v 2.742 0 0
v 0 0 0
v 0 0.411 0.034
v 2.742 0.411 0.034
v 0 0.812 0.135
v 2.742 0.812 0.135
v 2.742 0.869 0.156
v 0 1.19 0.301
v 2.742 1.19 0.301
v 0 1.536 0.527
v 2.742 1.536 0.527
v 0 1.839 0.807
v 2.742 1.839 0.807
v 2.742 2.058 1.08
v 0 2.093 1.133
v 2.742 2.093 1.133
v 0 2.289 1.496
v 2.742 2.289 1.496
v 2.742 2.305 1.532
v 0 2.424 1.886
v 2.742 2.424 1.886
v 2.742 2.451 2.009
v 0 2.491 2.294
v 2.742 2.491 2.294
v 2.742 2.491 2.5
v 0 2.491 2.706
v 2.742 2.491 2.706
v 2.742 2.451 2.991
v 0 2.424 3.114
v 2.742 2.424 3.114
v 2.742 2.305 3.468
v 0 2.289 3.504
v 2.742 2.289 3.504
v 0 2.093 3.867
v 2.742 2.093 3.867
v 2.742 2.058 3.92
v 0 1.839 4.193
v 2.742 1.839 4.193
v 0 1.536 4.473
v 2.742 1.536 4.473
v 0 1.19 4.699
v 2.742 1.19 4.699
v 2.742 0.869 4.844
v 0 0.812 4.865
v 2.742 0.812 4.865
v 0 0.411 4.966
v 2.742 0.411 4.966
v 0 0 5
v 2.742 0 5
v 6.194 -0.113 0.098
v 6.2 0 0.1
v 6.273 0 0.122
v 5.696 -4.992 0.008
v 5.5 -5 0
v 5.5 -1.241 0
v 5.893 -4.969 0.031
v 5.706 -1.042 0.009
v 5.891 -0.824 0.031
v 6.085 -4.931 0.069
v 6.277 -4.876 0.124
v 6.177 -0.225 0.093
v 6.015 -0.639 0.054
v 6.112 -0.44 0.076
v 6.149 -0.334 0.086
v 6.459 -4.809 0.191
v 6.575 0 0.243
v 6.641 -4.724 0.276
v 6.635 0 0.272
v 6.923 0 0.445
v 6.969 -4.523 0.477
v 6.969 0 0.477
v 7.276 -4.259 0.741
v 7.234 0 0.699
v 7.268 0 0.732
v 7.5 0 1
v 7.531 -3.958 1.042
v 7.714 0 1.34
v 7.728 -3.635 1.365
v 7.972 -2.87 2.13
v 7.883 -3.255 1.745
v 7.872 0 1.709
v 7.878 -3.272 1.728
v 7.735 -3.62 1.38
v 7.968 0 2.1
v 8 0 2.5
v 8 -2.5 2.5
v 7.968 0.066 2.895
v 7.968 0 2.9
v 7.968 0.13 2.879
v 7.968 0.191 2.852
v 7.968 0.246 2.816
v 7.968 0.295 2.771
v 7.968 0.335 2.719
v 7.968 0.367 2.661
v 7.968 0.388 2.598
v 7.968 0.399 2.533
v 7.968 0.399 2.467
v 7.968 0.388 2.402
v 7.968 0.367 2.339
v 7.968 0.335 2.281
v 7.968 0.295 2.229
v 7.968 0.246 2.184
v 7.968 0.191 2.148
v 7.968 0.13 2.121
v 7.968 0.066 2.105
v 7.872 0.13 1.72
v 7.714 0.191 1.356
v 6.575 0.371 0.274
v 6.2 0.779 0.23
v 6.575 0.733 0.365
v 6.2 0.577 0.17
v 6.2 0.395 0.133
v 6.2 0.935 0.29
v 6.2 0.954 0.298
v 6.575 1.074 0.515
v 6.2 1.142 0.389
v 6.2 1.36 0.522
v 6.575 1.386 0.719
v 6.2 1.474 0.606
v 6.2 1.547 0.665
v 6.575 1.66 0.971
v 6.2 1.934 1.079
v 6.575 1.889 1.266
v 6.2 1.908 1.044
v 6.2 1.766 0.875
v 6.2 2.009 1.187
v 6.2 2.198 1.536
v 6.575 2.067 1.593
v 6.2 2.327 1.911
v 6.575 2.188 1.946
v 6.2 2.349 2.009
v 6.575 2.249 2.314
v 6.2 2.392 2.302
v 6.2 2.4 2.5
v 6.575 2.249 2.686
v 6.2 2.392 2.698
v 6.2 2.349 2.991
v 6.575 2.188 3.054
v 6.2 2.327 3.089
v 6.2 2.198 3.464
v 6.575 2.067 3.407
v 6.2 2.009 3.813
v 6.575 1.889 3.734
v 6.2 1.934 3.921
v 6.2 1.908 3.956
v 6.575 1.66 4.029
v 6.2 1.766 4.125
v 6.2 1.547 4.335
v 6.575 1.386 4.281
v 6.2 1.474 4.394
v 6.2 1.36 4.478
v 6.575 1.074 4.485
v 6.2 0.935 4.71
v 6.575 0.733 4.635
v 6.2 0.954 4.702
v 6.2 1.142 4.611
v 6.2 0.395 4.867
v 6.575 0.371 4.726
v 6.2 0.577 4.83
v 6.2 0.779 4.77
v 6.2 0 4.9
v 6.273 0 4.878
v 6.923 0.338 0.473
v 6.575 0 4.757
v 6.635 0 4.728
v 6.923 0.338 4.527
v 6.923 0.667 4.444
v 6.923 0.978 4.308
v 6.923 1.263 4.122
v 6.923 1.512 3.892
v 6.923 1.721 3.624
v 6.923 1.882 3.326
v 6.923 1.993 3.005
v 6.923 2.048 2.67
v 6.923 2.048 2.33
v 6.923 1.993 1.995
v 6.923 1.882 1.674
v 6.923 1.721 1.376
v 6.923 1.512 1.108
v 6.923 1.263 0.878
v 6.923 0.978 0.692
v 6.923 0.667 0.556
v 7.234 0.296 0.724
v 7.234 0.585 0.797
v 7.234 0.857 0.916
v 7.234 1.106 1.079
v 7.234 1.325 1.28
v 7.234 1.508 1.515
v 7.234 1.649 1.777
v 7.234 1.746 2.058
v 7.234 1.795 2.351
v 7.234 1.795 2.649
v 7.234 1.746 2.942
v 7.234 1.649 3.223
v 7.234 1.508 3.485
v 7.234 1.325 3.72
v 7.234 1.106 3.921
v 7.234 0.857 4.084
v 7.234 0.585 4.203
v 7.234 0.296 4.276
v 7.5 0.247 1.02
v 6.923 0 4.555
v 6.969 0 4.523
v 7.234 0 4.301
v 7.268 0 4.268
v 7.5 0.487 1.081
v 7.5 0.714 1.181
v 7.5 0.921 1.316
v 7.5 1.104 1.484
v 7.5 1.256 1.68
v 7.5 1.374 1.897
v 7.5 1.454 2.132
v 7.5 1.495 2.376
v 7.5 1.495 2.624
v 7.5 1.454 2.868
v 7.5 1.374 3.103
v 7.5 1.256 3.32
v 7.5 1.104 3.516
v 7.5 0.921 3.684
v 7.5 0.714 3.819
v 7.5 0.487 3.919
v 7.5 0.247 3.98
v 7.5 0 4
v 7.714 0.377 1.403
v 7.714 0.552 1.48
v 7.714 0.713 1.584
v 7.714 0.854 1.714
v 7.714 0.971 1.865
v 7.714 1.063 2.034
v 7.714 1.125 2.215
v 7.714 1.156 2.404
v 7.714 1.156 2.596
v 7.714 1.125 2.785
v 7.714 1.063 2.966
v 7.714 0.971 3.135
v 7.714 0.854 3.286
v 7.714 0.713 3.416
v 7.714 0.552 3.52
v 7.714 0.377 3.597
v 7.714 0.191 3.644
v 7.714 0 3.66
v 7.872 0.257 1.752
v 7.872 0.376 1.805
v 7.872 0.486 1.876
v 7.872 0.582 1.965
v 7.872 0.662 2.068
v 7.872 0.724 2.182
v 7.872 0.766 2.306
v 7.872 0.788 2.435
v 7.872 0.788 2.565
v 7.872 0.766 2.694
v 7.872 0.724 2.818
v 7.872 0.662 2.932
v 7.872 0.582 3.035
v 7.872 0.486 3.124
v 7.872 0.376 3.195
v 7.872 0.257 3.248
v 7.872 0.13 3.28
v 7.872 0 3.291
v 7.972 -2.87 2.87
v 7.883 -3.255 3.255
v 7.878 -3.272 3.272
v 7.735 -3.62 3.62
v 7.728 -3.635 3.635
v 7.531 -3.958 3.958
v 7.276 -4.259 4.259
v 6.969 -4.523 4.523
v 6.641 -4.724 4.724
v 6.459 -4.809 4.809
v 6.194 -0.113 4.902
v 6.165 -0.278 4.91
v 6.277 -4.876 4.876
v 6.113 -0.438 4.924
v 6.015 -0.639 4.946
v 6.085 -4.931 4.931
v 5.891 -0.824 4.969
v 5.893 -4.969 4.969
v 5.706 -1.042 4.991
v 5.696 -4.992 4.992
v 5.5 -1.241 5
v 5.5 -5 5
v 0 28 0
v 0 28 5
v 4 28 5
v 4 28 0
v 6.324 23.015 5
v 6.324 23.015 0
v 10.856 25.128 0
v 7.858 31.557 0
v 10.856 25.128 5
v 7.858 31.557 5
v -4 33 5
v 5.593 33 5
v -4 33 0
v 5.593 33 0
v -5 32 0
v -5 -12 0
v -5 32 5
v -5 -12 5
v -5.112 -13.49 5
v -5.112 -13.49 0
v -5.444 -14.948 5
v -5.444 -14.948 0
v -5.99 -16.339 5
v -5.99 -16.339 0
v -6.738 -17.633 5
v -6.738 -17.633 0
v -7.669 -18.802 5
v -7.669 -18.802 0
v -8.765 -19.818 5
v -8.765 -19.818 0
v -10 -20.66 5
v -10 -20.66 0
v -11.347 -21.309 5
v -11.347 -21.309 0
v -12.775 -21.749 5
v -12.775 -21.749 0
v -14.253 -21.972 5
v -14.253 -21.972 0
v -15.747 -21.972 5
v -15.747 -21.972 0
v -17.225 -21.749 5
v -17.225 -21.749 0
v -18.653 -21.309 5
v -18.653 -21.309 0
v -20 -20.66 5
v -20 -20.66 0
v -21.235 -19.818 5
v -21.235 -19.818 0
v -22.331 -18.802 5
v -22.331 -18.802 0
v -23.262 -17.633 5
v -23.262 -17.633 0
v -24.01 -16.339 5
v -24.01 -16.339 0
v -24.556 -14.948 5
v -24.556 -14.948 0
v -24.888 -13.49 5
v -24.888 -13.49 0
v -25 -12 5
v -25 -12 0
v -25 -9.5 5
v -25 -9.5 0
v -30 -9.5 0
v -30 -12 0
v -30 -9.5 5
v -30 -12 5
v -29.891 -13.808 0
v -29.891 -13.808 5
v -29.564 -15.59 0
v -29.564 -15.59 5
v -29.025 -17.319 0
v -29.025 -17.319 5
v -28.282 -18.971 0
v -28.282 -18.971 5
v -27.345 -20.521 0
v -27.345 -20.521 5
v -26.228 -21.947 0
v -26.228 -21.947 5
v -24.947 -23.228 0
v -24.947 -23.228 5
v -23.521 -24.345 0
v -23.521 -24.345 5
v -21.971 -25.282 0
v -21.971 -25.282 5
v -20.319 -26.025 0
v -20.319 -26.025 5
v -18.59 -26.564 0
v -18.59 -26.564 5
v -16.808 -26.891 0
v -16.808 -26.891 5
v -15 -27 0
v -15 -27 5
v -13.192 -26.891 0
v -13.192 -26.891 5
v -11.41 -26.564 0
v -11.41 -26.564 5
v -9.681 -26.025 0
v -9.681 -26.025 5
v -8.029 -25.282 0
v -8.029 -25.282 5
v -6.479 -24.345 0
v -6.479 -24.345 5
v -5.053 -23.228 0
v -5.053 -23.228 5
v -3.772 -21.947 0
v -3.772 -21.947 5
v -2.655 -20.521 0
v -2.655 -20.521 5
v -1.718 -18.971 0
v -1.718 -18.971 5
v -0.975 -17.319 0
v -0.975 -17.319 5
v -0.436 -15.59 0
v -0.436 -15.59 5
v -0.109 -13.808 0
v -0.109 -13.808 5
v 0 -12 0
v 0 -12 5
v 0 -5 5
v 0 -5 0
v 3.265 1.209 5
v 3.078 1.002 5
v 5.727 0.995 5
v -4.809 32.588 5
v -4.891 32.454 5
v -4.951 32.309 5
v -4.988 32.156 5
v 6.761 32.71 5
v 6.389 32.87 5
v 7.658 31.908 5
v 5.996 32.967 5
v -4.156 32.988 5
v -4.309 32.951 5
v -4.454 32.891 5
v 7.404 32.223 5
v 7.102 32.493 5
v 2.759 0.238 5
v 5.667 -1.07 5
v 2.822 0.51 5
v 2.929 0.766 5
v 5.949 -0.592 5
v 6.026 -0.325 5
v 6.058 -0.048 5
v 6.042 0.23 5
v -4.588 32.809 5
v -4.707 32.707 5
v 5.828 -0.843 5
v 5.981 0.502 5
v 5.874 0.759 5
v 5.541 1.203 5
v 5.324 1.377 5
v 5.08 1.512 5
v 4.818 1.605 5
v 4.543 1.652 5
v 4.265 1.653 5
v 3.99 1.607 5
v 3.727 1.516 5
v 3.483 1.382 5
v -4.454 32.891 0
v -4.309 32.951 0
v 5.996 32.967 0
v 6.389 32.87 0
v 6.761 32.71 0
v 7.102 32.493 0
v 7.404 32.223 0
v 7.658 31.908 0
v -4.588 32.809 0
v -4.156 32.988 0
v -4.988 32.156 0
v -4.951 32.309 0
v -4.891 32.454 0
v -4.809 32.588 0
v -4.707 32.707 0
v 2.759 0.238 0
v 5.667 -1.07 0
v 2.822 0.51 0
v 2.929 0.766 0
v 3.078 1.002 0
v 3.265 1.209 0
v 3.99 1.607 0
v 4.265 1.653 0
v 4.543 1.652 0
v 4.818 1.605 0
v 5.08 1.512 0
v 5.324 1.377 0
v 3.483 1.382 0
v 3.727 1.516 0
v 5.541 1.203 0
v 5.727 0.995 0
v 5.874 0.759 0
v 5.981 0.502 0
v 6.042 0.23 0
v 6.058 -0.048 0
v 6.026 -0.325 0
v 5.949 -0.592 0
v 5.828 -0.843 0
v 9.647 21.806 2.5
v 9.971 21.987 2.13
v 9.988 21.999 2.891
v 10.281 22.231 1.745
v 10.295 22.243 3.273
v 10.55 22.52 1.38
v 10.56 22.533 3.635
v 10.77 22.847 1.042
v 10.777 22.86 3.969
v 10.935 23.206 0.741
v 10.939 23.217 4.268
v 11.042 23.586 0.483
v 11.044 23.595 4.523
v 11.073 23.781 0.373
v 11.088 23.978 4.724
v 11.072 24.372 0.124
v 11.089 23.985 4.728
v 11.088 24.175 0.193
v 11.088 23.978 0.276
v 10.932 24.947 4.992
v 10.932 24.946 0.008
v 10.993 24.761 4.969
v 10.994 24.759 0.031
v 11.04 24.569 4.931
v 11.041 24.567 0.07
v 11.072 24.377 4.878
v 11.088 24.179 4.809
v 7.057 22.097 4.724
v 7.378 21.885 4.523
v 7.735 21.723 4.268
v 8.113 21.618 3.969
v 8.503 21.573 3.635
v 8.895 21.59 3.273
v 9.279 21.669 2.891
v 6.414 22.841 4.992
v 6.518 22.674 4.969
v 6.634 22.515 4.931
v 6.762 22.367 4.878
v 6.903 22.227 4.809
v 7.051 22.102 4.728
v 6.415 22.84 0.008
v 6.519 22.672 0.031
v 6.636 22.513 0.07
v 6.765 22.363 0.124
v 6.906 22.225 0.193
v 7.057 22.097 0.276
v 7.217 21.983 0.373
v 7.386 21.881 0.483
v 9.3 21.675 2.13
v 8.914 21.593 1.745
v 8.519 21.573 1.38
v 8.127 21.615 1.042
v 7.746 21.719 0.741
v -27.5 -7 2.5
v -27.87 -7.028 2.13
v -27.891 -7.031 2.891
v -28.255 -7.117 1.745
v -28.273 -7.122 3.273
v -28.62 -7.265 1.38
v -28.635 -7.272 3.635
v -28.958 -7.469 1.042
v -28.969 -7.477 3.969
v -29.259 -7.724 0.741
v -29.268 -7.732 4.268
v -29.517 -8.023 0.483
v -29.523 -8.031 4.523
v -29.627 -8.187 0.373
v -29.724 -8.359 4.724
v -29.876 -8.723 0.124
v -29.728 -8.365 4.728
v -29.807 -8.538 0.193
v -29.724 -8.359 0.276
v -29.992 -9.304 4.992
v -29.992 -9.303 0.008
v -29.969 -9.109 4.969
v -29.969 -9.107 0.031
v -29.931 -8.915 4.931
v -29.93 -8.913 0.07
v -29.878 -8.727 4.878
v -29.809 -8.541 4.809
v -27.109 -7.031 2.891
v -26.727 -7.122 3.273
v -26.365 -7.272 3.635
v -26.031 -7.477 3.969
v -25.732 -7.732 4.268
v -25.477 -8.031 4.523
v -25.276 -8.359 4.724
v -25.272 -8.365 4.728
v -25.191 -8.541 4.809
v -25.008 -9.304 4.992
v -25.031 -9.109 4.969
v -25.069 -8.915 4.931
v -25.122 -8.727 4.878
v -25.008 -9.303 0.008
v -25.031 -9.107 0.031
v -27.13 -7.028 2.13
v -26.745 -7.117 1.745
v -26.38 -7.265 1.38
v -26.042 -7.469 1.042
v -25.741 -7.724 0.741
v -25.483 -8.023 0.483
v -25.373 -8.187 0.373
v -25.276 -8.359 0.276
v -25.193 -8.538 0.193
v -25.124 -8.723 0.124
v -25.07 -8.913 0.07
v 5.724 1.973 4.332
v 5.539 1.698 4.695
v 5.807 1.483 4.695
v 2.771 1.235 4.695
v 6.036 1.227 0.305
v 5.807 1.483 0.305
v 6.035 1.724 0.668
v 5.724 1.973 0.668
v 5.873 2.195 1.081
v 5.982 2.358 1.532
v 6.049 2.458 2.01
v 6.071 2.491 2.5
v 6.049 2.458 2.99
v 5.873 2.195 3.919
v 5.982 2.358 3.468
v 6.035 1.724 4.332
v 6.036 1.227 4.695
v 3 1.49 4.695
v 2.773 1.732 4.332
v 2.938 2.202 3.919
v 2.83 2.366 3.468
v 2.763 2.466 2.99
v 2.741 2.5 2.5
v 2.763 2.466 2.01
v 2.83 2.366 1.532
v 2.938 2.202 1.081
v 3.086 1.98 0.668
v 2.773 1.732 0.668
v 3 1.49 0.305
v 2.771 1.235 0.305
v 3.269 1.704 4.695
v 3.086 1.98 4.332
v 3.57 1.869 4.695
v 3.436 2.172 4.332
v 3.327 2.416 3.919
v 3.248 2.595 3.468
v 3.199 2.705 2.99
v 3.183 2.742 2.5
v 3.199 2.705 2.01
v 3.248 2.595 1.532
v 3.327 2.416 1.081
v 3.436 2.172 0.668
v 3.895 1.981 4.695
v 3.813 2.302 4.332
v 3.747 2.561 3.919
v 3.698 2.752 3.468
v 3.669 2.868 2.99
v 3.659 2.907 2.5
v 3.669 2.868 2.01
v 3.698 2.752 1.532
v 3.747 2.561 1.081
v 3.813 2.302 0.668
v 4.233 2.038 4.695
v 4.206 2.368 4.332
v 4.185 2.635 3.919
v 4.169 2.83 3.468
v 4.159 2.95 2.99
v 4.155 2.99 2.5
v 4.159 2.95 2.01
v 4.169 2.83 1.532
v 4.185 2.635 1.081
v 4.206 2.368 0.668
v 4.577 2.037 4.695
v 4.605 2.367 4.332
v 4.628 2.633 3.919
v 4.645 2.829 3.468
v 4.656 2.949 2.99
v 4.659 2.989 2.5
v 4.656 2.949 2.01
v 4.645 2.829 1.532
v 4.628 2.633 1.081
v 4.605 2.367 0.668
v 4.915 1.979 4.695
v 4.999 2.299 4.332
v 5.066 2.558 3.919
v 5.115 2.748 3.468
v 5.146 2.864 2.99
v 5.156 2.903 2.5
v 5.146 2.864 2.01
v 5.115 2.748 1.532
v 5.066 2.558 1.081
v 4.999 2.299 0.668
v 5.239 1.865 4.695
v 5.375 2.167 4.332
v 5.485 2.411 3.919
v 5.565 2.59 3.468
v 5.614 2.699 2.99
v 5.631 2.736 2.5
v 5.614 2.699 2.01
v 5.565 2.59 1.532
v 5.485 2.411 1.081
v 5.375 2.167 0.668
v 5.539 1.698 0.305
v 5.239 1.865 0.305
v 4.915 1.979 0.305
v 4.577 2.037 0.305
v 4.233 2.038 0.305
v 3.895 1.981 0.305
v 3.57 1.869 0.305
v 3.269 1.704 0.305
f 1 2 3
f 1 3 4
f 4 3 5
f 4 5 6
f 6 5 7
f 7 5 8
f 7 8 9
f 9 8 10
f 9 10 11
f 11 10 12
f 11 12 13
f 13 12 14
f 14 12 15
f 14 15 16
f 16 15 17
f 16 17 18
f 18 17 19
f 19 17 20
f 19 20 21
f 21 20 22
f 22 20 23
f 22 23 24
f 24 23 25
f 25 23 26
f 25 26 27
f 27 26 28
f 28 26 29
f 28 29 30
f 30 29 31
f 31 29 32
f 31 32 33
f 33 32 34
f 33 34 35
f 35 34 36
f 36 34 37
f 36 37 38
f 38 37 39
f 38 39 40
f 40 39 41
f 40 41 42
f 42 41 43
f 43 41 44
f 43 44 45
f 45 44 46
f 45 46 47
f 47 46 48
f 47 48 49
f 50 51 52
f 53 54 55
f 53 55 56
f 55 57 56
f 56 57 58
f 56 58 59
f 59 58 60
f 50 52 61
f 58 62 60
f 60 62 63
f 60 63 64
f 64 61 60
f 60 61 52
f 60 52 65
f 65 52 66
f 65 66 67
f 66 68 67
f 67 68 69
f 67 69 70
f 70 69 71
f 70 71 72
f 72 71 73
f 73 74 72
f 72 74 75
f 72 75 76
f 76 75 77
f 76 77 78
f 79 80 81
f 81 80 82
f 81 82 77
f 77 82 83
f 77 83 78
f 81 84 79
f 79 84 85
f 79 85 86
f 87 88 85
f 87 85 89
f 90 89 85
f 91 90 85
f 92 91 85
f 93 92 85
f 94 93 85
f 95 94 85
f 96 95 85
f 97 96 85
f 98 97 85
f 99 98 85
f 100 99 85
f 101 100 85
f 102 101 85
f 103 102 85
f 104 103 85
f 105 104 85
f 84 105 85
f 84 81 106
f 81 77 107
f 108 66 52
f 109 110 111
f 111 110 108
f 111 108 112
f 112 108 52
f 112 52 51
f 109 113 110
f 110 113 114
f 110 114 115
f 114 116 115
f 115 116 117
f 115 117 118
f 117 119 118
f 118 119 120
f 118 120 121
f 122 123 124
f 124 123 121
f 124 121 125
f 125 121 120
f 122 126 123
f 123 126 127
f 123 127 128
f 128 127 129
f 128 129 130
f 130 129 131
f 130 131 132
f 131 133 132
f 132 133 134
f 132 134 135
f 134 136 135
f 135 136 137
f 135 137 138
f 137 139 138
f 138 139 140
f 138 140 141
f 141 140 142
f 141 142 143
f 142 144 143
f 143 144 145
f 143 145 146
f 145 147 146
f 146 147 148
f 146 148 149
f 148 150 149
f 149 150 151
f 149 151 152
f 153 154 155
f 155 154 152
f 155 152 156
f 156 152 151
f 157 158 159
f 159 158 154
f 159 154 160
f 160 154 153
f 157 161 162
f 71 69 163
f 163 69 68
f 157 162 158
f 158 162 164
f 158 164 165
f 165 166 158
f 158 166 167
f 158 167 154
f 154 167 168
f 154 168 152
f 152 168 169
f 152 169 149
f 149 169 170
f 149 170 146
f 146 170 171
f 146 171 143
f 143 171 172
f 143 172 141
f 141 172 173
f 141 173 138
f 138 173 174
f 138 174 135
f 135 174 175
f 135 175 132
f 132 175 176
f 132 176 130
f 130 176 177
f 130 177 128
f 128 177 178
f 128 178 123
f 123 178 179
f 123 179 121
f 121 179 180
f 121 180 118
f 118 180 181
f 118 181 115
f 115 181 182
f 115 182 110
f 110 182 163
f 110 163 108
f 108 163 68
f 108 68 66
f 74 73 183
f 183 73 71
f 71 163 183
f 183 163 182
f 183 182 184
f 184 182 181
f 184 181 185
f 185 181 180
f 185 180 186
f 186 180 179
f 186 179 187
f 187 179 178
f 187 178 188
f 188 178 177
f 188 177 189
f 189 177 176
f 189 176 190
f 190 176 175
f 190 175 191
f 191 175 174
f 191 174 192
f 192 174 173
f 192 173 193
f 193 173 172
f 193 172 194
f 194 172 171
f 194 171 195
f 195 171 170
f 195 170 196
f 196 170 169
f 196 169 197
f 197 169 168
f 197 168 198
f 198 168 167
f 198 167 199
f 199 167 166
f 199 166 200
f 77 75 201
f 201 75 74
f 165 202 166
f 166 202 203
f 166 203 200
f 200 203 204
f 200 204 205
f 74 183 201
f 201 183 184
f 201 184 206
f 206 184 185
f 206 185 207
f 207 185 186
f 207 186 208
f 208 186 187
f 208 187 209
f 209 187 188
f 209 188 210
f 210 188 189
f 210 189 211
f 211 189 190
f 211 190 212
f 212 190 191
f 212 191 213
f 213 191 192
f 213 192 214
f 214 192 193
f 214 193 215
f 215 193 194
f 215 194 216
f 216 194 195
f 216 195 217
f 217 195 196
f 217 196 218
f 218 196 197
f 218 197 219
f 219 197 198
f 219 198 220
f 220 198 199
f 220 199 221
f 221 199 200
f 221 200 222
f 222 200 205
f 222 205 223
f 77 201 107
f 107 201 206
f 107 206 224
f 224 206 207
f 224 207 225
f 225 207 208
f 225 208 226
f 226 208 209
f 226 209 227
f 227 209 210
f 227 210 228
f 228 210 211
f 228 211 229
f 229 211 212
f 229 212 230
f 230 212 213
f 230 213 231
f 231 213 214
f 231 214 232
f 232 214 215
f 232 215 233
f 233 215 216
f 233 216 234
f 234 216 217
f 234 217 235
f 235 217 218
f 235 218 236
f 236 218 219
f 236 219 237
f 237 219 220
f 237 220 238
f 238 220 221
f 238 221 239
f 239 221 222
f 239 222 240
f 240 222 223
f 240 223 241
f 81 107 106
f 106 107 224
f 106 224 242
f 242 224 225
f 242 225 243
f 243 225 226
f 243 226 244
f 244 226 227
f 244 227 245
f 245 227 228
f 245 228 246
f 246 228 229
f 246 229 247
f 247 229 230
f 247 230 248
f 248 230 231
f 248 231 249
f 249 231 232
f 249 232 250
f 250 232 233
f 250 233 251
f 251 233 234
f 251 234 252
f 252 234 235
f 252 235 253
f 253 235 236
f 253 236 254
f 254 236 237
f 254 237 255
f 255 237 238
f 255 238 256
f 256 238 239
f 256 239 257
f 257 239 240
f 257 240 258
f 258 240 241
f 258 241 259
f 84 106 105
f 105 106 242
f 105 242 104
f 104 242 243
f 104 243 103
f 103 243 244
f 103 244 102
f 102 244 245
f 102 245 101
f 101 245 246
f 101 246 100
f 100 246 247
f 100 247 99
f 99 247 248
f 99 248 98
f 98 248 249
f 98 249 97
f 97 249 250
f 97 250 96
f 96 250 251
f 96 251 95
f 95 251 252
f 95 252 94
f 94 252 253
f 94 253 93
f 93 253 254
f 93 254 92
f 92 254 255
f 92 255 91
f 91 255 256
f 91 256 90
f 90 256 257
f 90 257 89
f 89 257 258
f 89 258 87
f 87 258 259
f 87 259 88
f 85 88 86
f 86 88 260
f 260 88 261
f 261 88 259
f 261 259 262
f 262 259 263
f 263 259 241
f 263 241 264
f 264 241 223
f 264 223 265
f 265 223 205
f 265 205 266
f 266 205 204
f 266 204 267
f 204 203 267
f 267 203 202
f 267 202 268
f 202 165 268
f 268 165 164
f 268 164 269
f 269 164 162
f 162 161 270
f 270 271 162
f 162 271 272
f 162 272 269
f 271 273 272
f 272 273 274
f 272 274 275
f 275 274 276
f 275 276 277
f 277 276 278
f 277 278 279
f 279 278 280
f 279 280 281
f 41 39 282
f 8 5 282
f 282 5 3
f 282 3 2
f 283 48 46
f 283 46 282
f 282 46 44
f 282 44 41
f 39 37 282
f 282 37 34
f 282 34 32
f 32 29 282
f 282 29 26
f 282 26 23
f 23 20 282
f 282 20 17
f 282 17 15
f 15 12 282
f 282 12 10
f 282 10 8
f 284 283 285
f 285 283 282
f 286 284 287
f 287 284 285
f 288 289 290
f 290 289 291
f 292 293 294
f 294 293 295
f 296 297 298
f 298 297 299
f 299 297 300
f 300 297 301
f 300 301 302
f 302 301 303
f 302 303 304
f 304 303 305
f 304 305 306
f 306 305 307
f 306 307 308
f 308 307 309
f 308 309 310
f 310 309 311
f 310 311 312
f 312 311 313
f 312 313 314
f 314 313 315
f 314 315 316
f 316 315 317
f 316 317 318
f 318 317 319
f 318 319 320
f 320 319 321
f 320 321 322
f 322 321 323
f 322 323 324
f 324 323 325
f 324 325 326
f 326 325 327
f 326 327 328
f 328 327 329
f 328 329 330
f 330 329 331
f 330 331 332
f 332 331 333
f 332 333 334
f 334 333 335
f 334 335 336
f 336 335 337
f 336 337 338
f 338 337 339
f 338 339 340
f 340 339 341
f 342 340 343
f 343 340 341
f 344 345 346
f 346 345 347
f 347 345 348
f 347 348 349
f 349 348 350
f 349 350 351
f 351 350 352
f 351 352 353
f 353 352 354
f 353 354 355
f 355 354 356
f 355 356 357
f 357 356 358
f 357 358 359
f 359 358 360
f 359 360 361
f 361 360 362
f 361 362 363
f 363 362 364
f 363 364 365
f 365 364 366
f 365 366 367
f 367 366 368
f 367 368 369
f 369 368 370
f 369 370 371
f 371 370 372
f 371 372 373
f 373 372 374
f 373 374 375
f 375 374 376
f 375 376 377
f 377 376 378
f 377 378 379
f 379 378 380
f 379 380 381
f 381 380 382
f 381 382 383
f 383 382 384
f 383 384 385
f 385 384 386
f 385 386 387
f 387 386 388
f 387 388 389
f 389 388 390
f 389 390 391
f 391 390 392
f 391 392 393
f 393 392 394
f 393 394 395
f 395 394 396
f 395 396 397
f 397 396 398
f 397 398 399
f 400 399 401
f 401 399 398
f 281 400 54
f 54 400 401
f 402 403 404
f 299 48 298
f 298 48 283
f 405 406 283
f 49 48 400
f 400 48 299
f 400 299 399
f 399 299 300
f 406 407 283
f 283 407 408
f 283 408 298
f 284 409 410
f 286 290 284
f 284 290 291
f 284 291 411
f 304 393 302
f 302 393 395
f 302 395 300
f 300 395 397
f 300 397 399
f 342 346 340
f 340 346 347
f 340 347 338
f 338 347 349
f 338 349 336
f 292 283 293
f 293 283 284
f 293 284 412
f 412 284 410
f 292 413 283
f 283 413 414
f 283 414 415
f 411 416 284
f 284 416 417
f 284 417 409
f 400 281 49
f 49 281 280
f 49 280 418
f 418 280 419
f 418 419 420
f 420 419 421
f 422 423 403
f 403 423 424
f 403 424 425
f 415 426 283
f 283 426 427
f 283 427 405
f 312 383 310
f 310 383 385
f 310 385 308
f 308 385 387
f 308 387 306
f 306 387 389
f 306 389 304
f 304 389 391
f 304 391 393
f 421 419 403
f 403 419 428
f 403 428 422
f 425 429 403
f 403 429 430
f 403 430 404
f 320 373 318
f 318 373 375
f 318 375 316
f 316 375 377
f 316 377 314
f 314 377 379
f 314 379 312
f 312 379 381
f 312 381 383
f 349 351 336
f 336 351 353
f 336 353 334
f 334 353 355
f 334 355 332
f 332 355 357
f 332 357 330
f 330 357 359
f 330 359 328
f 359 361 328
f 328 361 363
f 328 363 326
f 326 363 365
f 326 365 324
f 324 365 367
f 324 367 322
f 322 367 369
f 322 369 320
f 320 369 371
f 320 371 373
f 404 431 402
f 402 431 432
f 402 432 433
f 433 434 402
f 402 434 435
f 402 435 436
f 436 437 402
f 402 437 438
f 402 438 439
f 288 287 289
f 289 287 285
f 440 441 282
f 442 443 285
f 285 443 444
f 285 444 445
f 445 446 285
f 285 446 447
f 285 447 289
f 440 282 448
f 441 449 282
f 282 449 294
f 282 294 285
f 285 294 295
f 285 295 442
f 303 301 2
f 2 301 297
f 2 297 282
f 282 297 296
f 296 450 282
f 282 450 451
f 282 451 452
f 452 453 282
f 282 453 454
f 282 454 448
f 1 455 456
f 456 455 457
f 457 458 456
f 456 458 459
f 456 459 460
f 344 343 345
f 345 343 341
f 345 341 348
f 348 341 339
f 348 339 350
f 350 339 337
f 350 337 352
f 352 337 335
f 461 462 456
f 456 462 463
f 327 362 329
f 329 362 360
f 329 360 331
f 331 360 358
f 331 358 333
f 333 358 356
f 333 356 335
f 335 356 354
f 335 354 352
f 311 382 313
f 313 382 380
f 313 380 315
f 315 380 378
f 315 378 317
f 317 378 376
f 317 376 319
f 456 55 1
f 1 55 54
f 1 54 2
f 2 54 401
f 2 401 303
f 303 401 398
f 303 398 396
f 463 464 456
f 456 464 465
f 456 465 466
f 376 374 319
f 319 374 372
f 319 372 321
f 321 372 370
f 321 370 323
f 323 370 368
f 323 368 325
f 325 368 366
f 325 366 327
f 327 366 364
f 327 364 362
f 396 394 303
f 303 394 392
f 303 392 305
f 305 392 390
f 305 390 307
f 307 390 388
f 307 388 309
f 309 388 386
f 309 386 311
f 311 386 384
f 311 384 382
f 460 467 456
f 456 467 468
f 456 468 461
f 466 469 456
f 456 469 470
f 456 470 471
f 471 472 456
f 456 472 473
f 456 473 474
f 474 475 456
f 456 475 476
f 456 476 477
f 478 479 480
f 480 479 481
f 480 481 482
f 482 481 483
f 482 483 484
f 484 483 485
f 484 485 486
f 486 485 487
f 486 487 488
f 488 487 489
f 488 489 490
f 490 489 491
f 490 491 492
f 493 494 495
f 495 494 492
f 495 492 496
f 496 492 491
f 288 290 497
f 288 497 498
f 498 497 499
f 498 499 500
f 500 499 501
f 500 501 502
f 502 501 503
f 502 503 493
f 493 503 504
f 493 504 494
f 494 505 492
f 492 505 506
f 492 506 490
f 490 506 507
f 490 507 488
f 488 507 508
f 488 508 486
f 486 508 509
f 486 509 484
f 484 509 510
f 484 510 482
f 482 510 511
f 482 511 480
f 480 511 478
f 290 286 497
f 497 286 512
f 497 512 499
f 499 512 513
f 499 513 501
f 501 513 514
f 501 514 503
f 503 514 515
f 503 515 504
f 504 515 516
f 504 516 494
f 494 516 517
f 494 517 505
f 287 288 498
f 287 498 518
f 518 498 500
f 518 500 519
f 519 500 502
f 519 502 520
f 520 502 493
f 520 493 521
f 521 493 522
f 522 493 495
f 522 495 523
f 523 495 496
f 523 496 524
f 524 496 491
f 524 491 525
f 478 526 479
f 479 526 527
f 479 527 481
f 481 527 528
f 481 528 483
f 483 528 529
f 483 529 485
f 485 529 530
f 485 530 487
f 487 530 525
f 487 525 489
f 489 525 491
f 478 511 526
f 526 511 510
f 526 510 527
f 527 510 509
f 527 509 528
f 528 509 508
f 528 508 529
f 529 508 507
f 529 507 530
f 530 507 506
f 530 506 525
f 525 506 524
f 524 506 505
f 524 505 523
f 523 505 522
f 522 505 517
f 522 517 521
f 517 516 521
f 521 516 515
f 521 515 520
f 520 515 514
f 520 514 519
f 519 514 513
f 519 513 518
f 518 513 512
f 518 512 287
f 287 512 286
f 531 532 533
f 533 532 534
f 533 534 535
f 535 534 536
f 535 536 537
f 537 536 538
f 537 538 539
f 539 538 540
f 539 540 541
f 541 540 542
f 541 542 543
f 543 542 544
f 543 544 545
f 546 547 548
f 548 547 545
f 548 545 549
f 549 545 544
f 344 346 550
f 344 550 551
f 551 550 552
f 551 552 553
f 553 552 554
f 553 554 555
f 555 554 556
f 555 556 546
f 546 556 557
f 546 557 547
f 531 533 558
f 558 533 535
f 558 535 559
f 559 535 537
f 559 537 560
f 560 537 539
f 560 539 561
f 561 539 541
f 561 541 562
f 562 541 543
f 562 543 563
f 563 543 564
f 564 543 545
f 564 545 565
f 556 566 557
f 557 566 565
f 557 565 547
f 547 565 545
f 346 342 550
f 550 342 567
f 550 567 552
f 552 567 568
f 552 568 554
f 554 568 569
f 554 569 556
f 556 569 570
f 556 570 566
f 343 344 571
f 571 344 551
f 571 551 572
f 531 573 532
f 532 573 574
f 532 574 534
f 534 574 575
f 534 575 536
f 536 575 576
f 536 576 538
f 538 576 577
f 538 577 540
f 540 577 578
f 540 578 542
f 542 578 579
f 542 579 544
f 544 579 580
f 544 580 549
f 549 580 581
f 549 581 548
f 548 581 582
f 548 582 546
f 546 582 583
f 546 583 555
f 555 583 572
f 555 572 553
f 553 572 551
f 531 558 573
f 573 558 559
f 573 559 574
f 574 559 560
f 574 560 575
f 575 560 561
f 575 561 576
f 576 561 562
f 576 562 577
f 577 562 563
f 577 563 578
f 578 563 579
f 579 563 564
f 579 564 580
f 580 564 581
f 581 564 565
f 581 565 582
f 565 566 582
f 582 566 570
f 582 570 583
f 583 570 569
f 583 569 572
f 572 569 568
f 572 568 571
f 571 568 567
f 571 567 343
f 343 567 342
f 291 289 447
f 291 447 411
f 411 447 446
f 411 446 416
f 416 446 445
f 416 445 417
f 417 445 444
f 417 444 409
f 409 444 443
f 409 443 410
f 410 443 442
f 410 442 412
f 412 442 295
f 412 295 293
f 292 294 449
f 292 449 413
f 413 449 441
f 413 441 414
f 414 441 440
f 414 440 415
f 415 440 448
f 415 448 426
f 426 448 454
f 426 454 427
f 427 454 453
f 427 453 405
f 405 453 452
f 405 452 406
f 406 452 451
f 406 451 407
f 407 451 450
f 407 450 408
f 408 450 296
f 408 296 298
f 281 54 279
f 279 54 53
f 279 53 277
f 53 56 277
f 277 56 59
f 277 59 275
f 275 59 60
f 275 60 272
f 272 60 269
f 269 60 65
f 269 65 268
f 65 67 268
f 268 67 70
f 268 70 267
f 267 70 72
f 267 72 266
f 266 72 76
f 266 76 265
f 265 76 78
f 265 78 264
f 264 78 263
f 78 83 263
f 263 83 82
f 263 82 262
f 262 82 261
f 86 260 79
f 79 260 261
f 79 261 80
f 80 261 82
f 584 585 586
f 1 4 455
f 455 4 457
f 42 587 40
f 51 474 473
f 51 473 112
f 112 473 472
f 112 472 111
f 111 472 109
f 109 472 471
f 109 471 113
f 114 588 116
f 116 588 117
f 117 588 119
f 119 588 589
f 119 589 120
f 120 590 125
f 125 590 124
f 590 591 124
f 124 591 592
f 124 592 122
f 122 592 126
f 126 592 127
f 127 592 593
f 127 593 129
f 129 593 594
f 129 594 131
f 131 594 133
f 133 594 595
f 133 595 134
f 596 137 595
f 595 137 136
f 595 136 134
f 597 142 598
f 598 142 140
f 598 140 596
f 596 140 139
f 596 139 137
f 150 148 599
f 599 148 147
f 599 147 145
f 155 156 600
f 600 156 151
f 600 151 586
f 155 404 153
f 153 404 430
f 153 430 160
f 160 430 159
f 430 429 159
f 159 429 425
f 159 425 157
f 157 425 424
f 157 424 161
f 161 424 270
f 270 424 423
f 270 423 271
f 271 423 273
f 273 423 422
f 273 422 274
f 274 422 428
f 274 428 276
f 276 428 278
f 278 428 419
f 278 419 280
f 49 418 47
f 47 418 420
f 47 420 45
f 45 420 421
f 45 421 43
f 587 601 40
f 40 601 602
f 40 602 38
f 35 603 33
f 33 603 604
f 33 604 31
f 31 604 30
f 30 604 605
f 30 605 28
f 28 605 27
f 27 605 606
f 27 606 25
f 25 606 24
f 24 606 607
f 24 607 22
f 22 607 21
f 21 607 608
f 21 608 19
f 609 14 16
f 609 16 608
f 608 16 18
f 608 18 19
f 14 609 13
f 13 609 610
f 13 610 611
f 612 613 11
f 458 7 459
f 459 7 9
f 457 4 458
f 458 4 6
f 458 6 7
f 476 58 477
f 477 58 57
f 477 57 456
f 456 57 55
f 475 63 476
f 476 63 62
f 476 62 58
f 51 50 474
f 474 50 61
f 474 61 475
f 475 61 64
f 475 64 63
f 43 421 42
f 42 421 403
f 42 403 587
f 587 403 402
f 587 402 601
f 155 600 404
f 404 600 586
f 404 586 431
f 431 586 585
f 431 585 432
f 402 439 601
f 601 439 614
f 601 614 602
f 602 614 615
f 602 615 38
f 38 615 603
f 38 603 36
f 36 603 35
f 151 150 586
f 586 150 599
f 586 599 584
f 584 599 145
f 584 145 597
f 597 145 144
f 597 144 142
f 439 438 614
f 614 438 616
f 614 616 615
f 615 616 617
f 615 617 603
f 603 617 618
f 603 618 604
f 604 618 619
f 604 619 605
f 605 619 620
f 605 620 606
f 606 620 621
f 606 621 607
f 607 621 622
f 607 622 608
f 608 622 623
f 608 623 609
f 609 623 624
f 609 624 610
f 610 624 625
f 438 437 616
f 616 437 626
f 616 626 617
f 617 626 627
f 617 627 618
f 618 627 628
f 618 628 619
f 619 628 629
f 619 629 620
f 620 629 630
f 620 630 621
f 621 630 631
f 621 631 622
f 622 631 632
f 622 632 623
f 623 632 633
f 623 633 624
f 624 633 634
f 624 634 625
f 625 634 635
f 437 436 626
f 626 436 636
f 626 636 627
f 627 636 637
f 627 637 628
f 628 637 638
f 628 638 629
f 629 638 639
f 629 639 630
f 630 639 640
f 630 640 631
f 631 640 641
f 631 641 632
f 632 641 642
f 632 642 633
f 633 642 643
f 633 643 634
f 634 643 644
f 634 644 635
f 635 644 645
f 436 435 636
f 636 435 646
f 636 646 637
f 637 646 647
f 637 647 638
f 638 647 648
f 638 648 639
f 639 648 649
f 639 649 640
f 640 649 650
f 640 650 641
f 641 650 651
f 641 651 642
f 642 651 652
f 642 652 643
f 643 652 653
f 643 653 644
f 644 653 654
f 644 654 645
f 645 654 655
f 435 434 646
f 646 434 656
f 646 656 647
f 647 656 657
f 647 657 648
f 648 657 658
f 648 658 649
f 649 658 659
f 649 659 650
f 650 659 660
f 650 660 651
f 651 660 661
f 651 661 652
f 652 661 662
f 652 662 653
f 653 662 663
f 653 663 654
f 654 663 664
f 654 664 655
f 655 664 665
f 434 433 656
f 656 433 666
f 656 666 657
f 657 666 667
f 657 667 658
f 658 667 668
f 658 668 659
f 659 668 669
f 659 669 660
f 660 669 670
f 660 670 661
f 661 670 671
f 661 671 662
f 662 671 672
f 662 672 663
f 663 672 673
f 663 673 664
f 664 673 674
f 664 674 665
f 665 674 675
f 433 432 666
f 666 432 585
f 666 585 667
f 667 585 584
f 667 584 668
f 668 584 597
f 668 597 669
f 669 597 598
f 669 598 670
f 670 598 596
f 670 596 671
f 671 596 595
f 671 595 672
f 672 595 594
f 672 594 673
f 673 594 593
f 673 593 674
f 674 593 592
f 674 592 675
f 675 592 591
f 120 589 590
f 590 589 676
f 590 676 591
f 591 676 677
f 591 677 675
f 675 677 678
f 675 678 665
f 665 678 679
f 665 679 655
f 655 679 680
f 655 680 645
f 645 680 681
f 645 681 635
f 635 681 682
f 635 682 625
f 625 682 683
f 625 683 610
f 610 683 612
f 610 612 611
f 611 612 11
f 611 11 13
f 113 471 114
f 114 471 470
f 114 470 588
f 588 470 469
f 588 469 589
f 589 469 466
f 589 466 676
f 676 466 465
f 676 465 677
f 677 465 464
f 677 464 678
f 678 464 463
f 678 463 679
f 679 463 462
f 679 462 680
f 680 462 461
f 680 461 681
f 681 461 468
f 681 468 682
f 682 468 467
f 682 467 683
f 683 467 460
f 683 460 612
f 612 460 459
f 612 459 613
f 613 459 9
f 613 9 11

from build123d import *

# Parameters (mm, degrees)
EXTRUDE_1_DEPTH     = 5
FILLET_1_R          = 2.5
FILLET_2_R          = 1
EXTRUDE_2_DEPTH     = 8
FILLET_3_R          = 2.5
SKETCH_5_W          = 1.467751534
SKETCH_5_H          = 4.178210798
SKETCH_5_W_2        = 1.389566385
CUT_EXTRUDE_1_DEPTH = 20


with BuildPart() as part:
    # 草图1 → 凸台-拉伸1 (new body)
    with BuildSketch(Plane.XY):
        with BuildLine():
            Line((0, 0), (0, 28))
            Line((0, 28), (4, 28))
            Line((4, 28), (7.380946094, 20.749537704))
            Line((7.380946094, 20.749537704), (11.912485029, 22.862629012))
            Line((11.912485029, 22.862629012), (7.185351304, 33))
            Line((7.185351304, 33), (-5, 33))
            Line((-5, 33), (-5, -12))
            ThreePointArc((-5, -12), (-15, -22), (-25, -12))
            Line((-25, -12), (-25, -7))
            Line((-25, -7), (-30, -7))
            Line((-30, -7), (-30, -12))
            ThreePointArc((-30, -12), (-15, -27), (0, -12))
            Line((0, -12), (0, -5))
            Line((0, -5), (8, -5))
            Line((8, -5), (8, 0))
            Line((8, 0), (0, 0))
        make_face()
    extrude(amount=EXTRUDE_1_DEPTH)

    # 圆角1
    fillet_1_edges = [part.edges().sort_by_distance(p)[0] for p in [
        (-27.5, -7, 0),
        (9.646715562, 21.806083358, 0),
        (9.646715562, 21.806083358, 5),
        (-30, -7, 2.5),
        (-25, -7, 2.5),
        (7.185351304, 33, 2.5),
        (11.912485029, 22.862629012, 2.5),
        (7.380946094, 20.749537704, 2.5),
        (-27.5, -7, 5),
    ]]
    fillet(fillet_1_edges, radius=FILLET_1_R - 0.0001)  # a hair under: the kernel refuses the full size

    # 圆角2
    fillet_2_edges = [part.edges().sort_by_distance(p)[0] for p in [
        (-5, 33, 2.5),
    ]]
    fillet(fillet_2_edges, radius=FILLET_2_R)

    # 草图3 → 凸台-拉伸2 (add)
    with BuildSketch(Plane(origin=(0, 0, 0), x_dir=(0, 0, -1), z_dir=(1, 0, 0))):
        with BuildLine():
            Line((-5, 0), (0, 0))
            ThreePointArc((0, 0), (-2.5, 2.5), (-5, 0))
        make_face()
    extrude(amount=EXTRUDE_2_DEPTH)

    # 圆角3
    fillet_3_edges = [part.edges().sort_by_distance(p)[0] for p in [
        (8, -2.5, 0),
        (8, -5, 2.5),
        (8, -2.5, 5),
        (8, 2.5, 2.5),
    ]]
    fillet(fillet_3_edges, radius=FILLET_3_R - 0.0001)  # a hair under: the kernel refuses the full size

    # 草图4 → 旋转3 (revolve)
    with BuildSketch(Plane(origin=(4.4, 0, 0), x_dir=(0, 0, -1), z_dir=(1, 0, 0))):
        with BuildLine():
            Line((-5.5, 0), (0.5, 0))
            ThreePointArc((0.5, 0), (-2.5, 3), (-5.5, 0))
        make_face()
    revolve(axis=Axis((4.4, 0, 2.5), (0, 0, -1)))

    # 草图5 → 切除-拉伸1 (cut)
    with BuildSketch(Plane.ZY.offset(5)):
        with Locations((-0.733875767, -0.010051234)):
            Rectangle(SKETCH_5_W, SKETCH_5_H)
        with Locations((5.694783193, -0.010051234)):
            Rectangle(SKETCH_5_W_2, SKETCH_5_H)
    extrude(amount=-CUT_EXTRUDE_1_DEPTH, mode=Mode.SUBTRACT)


solid = part.part
